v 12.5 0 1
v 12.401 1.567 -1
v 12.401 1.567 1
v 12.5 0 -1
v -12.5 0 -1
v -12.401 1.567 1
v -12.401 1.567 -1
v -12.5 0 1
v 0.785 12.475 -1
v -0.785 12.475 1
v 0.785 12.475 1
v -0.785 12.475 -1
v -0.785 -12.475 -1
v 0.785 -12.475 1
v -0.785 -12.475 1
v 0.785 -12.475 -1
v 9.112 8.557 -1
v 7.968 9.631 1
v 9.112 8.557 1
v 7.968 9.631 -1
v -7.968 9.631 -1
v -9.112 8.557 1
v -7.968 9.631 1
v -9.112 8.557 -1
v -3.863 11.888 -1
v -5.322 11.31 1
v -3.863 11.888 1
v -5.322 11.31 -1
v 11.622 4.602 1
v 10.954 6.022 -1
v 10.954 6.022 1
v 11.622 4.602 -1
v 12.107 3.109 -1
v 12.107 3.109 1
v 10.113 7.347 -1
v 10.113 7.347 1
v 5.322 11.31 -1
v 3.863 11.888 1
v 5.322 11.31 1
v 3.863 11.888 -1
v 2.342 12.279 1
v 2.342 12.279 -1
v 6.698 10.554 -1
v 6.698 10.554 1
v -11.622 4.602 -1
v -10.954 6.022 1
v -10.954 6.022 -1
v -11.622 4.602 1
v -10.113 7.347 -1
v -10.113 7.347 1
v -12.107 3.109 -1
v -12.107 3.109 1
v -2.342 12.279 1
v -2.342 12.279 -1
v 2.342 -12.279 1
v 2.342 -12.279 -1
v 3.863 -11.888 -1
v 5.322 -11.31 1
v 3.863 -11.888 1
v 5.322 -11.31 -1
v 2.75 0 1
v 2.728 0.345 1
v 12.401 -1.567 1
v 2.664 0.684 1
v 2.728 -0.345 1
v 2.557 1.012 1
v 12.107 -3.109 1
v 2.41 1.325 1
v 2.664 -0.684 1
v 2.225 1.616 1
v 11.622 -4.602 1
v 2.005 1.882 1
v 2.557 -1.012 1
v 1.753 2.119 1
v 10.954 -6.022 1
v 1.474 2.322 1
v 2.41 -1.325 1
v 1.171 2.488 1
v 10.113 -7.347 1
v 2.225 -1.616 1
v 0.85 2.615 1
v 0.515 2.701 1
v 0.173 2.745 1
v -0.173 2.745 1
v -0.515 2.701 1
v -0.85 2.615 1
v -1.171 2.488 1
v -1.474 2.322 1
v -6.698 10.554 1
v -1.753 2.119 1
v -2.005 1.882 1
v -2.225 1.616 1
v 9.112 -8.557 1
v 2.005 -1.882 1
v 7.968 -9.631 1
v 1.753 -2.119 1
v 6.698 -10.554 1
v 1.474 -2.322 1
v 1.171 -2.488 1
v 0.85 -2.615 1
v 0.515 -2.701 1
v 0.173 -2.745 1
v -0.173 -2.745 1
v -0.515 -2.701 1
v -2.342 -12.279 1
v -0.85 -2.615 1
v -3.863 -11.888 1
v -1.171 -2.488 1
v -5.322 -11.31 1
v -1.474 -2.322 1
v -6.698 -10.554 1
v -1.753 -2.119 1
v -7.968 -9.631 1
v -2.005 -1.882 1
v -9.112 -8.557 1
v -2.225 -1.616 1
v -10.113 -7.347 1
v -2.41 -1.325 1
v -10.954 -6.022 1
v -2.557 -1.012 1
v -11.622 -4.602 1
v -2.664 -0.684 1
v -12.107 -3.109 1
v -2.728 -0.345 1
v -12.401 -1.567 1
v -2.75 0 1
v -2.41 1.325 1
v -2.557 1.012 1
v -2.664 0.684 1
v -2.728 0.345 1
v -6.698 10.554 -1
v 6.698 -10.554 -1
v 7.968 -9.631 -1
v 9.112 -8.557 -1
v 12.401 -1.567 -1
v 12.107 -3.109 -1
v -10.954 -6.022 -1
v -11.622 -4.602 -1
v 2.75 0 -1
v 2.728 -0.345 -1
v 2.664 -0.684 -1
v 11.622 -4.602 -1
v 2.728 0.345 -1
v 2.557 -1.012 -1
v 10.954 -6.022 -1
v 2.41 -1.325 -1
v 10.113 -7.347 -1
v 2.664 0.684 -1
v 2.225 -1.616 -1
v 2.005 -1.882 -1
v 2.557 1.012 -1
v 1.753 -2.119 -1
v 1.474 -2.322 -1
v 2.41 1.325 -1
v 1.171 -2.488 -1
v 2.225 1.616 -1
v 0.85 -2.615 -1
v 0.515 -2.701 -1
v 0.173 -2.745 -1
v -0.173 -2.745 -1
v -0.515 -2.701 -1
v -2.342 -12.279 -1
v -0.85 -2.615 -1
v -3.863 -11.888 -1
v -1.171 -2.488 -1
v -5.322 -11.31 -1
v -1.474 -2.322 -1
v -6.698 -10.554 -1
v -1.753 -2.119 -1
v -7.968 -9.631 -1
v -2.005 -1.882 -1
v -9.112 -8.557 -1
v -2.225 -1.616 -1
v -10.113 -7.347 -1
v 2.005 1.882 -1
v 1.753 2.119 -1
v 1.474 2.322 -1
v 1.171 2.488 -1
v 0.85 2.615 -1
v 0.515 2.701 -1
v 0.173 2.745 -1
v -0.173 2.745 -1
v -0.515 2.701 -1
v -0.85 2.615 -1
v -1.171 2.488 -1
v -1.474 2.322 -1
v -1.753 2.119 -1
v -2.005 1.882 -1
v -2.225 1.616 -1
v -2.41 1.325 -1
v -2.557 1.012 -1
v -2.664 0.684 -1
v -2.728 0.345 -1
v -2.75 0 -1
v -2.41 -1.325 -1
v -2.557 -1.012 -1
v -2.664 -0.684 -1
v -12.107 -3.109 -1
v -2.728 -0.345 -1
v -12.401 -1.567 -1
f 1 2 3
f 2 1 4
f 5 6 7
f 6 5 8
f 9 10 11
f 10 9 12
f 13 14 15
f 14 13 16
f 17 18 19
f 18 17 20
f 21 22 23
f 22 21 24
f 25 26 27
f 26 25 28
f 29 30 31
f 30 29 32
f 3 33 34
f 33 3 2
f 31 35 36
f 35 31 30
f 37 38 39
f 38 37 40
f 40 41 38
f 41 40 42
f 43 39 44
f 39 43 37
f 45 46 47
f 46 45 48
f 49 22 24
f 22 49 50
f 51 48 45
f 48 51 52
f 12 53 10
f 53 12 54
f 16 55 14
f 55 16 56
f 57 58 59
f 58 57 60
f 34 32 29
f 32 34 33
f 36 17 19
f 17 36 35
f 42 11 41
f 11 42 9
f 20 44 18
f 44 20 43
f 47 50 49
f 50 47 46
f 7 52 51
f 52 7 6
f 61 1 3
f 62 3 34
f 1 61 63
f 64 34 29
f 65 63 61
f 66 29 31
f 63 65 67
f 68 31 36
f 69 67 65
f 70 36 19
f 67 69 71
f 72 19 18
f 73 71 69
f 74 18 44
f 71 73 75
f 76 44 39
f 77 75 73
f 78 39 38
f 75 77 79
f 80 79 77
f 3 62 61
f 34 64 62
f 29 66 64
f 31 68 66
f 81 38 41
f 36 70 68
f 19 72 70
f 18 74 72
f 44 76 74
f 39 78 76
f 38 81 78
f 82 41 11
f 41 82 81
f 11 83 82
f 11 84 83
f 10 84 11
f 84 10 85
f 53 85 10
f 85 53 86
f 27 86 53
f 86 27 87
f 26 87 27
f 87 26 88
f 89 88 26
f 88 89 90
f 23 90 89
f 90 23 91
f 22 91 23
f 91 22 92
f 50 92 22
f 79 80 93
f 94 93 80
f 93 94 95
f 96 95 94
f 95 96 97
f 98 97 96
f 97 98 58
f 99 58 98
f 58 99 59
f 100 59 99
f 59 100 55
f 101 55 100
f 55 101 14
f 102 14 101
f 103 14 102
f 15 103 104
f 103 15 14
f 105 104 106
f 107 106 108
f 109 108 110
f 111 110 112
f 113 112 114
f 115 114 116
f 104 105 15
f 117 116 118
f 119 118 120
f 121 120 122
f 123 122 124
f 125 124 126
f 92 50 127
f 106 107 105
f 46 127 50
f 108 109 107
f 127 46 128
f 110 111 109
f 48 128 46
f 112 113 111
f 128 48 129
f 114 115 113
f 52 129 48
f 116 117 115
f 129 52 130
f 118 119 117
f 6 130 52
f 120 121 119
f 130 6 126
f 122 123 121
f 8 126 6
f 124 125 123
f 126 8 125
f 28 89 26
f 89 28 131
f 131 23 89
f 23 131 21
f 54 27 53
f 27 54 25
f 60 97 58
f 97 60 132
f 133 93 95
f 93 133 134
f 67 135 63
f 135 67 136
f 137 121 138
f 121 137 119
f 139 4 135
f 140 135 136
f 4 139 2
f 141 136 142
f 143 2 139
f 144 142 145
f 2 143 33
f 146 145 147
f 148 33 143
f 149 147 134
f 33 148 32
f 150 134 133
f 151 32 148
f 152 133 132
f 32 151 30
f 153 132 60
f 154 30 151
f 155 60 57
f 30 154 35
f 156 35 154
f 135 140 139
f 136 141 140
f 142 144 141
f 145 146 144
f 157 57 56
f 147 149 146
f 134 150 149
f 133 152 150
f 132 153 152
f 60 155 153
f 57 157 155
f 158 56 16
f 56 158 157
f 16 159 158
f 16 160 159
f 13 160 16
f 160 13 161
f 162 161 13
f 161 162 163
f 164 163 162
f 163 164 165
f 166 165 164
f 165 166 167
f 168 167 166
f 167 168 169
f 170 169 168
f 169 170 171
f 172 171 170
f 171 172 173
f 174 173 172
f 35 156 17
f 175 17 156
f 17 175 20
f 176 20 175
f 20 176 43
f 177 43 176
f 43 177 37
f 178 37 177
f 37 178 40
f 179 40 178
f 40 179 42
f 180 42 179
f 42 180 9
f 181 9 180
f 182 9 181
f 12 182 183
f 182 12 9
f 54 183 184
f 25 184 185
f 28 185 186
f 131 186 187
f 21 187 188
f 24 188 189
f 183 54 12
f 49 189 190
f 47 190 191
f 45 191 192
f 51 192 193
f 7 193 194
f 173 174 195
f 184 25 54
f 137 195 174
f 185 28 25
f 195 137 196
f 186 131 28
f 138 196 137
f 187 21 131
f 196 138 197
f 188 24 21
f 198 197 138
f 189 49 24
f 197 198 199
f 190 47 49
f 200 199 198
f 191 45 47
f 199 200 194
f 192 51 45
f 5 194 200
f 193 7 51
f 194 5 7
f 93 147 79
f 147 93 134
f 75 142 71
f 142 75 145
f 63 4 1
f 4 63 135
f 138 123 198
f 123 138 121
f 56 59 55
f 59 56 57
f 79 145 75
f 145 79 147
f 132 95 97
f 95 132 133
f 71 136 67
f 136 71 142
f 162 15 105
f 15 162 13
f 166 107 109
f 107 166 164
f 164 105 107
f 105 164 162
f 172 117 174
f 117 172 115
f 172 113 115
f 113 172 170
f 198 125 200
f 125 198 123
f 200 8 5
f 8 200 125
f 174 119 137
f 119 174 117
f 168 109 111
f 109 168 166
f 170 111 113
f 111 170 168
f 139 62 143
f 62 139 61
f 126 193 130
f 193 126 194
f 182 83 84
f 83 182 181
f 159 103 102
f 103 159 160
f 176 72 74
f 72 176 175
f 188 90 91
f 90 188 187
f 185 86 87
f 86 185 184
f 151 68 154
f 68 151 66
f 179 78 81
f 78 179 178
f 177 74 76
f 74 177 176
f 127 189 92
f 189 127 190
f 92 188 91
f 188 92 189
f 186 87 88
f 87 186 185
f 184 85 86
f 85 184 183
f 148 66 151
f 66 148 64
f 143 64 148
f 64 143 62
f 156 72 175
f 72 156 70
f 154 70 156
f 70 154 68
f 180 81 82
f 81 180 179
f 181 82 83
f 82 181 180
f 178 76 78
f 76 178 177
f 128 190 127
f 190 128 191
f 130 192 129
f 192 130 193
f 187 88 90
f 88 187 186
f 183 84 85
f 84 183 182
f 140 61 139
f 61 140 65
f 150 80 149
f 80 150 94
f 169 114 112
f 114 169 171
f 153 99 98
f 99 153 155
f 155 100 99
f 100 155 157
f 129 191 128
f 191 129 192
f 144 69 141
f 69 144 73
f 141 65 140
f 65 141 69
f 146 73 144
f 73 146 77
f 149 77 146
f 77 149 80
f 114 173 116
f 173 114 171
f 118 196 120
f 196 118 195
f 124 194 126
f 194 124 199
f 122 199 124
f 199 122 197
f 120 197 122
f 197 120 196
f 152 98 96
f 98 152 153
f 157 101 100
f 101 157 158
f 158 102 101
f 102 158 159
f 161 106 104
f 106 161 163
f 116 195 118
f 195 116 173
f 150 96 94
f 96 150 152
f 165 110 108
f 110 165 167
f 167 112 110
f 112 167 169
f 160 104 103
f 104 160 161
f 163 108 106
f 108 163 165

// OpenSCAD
$fn = 50;


difference() {
	union() {
		translate(v = [0, 0, -1.0000000000]) {
			cylinder(h = 2, r = 12.5000000000);
		}
	}
	union() {
		translate(v = [0, 0, -100.0000000000]) {
			cylinder(h = 200, r = 2.7500000000);
		}
	}
}
